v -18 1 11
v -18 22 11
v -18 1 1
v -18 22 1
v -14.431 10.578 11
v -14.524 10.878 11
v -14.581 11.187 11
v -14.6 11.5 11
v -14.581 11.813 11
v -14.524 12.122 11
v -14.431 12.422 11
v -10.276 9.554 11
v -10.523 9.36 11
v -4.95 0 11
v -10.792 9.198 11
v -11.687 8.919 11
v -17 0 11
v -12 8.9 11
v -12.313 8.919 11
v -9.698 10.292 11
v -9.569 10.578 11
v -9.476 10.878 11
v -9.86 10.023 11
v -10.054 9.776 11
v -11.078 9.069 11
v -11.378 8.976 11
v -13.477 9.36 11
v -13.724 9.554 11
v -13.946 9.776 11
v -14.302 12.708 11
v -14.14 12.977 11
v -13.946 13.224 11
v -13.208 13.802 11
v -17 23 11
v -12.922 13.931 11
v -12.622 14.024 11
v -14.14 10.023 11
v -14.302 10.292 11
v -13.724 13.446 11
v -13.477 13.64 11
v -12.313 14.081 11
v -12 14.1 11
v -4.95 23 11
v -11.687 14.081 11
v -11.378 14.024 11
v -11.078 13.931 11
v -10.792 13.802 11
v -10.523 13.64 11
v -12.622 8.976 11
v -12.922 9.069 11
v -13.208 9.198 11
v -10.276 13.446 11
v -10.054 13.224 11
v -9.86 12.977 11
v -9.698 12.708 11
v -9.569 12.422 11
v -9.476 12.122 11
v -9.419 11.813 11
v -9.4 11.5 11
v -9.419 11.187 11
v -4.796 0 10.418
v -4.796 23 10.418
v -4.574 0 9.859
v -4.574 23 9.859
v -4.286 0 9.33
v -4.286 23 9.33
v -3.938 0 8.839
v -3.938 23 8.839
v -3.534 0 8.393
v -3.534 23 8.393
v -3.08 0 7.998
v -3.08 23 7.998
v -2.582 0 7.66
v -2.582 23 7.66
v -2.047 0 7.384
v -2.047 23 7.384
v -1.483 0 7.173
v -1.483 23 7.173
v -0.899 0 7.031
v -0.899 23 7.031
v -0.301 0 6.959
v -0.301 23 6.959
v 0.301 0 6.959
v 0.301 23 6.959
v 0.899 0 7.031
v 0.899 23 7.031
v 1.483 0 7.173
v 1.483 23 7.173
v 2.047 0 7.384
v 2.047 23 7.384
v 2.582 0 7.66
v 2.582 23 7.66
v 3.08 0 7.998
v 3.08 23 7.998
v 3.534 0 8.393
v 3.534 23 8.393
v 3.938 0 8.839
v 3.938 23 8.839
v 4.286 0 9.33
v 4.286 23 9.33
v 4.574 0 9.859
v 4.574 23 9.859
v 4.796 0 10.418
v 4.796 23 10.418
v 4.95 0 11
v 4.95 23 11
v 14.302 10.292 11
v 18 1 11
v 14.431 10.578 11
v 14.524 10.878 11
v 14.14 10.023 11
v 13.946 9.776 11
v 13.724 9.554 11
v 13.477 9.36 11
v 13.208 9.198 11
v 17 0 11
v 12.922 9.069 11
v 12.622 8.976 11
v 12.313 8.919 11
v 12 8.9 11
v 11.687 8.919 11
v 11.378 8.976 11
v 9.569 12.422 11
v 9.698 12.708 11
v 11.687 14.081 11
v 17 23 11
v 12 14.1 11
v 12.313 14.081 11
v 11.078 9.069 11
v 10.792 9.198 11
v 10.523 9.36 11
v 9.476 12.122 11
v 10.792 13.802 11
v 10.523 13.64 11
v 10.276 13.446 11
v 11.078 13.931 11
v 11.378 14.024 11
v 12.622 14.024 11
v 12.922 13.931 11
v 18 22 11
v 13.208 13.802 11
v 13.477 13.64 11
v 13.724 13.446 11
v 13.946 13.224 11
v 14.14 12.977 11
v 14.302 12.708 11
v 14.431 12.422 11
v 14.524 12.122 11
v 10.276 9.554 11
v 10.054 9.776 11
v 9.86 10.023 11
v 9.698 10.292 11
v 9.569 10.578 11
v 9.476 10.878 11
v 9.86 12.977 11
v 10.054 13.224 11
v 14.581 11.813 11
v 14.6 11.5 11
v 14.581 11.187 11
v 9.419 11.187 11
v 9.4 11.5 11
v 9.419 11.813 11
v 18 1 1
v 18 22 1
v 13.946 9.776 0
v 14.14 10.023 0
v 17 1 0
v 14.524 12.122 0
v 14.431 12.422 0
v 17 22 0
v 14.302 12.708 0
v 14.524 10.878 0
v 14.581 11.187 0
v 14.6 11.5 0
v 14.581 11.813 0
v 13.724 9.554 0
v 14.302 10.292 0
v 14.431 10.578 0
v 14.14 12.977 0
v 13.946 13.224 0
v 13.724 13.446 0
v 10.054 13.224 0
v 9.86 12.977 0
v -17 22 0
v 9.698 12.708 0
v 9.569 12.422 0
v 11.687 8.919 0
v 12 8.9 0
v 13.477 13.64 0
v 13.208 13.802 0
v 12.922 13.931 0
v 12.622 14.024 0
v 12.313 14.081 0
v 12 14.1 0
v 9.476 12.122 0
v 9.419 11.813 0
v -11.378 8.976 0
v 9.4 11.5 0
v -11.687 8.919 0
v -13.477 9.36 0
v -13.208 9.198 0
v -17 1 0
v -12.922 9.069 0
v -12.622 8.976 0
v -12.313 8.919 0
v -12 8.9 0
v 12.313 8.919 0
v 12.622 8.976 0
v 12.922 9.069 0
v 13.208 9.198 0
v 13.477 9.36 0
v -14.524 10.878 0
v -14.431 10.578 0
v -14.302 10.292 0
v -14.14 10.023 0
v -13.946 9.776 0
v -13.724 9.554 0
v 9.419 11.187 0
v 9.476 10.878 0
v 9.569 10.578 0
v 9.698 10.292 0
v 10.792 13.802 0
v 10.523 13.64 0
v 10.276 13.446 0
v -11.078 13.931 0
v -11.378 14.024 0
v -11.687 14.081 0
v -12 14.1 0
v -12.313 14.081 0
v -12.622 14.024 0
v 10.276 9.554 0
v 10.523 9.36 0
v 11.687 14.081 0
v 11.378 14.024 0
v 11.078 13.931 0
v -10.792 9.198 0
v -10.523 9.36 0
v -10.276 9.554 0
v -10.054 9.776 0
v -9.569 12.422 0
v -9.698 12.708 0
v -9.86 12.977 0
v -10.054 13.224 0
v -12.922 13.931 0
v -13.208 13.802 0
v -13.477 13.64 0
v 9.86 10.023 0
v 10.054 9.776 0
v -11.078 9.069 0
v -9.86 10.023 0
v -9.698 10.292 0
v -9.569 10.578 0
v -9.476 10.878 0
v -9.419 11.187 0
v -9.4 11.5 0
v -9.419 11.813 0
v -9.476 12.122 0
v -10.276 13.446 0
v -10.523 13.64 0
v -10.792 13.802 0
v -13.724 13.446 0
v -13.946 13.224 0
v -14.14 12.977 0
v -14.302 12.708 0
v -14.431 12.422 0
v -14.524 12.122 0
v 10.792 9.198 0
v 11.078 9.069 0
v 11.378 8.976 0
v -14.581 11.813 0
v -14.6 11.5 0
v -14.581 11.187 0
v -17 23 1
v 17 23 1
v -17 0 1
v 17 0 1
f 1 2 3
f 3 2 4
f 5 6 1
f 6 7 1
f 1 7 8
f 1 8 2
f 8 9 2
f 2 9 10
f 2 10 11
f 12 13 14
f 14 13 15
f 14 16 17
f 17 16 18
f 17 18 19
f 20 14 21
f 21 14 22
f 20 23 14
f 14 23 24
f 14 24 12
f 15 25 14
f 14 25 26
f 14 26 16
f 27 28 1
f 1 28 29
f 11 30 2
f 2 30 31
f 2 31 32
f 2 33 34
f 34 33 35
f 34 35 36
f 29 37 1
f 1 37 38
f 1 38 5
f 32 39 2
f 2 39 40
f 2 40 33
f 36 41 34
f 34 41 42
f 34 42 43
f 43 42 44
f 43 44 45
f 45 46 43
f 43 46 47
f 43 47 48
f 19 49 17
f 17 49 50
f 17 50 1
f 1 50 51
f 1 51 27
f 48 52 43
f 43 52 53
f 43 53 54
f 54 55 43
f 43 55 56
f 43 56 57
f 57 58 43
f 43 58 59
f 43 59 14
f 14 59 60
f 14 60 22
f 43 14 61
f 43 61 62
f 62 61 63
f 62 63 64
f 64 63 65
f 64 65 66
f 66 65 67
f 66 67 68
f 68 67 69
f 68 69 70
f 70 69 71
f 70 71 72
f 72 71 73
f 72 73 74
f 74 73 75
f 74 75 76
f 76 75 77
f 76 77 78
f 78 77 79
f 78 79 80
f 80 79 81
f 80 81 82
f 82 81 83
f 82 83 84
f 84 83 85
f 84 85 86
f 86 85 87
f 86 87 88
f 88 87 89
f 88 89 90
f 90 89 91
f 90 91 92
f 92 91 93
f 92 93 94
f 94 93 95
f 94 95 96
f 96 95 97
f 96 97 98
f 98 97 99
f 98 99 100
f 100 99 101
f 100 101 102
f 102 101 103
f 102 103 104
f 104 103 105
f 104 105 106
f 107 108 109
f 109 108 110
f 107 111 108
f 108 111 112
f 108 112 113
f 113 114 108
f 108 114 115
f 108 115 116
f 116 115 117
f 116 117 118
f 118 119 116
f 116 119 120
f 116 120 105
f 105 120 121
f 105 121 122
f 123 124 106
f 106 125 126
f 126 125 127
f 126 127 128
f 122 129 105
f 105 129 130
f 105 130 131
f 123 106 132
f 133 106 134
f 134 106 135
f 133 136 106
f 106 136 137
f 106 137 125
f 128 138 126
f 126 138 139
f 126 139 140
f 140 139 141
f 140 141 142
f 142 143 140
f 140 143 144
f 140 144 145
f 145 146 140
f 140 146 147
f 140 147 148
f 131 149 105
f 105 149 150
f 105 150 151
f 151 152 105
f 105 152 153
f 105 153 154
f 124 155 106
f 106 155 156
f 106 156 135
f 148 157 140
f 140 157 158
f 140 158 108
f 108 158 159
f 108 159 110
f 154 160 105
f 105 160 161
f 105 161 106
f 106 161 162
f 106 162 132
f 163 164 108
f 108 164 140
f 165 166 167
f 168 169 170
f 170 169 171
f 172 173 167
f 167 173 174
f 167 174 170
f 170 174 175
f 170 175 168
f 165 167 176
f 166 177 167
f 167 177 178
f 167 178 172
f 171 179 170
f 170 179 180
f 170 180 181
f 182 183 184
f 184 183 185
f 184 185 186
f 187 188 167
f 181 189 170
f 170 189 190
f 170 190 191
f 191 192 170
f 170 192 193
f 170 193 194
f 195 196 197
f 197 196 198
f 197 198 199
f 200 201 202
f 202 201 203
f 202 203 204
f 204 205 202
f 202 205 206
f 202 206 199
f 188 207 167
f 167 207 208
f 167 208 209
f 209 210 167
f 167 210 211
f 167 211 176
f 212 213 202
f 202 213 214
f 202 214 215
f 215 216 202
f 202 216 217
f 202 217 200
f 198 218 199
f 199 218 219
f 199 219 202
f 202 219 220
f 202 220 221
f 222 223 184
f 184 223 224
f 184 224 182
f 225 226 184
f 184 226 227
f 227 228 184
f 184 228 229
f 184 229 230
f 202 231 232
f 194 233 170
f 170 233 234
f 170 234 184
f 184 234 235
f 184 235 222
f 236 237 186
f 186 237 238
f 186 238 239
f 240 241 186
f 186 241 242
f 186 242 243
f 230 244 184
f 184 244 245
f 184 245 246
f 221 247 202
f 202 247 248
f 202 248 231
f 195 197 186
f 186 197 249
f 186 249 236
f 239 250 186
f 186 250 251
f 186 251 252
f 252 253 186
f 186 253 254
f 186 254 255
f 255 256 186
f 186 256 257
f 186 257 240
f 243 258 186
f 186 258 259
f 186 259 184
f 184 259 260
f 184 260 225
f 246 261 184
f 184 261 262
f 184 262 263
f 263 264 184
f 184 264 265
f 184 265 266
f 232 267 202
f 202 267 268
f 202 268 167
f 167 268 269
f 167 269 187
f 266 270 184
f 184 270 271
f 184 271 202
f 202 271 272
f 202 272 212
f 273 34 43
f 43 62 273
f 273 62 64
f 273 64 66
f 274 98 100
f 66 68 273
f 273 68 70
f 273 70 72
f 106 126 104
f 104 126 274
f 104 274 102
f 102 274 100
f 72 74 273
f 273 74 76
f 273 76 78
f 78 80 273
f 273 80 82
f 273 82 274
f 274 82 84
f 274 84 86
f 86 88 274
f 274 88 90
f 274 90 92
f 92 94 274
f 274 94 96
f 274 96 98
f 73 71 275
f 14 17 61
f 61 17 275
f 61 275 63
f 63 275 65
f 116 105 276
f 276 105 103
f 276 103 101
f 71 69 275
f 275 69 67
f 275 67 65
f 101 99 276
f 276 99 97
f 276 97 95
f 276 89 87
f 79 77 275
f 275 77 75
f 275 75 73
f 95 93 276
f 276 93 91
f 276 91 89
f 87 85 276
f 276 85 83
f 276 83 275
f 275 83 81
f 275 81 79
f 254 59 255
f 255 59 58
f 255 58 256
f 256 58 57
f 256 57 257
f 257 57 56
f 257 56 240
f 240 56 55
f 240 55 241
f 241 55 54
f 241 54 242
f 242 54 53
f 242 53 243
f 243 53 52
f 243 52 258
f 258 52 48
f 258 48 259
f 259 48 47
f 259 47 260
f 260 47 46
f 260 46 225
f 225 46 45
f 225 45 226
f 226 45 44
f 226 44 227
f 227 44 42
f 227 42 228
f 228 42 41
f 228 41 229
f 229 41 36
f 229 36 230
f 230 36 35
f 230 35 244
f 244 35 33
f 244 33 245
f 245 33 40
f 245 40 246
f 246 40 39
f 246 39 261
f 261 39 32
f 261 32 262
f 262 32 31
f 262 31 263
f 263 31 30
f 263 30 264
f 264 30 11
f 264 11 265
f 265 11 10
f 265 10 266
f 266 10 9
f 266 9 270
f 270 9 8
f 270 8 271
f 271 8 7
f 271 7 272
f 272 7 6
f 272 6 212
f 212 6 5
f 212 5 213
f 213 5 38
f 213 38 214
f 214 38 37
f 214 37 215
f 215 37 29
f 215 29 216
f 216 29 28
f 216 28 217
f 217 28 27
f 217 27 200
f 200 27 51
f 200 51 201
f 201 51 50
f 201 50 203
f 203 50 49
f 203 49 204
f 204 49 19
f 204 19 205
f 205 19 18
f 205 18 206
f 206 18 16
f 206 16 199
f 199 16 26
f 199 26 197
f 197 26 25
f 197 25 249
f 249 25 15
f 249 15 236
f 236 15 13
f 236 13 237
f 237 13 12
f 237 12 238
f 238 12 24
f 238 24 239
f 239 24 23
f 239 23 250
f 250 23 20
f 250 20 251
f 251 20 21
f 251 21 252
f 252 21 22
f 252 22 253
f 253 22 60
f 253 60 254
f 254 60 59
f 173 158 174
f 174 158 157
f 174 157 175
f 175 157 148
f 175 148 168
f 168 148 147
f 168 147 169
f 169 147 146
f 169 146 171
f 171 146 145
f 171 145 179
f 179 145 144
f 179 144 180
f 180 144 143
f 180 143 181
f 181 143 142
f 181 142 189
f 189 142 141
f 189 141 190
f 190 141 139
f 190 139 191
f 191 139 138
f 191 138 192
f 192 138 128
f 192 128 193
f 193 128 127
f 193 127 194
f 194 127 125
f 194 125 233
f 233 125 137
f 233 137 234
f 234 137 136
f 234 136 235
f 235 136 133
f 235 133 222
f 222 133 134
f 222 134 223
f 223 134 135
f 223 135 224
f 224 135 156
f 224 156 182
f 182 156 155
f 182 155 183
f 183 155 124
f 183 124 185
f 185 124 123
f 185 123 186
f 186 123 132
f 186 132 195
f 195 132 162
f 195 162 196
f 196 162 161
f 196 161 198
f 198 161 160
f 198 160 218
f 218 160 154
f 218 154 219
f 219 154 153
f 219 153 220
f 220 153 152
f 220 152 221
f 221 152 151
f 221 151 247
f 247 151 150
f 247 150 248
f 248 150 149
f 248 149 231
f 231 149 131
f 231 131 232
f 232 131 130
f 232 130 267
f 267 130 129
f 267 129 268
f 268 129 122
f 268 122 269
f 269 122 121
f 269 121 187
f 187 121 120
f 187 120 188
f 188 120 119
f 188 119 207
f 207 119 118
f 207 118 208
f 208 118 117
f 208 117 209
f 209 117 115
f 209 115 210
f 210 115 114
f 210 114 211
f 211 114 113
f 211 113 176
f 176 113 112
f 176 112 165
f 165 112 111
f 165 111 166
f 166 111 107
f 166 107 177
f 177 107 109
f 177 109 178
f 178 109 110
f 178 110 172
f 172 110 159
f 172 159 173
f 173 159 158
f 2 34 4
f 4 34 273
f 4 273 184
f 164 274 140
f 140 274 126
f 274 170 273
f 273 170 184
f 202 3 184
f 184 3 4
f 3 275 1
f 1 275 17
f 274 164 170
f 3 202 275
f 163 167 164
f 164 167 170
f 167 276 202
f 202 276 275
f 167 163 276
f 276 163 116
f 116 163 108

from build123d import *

# Parameters (mm, degrees)
BOSS_EXTRUDE1_DEPTH = 23
CUT_EXTRUDE1_REACH  = 33.209
SKETCH2_R           = 2.6
CHAMFER1_SIZE       = 1


with BuildPart() as part:
    # Sketch1 → Boss-Extrude1 (new body)
    with BuildSketch(Plane(origin=(0, 0, 0), x_dir=(1, 0, 0), z_dir=(0, 1, 0))):
        with BuildLine():
            Line((-18, 0), (18, 0))
            Line((18, 0), (18, -11))
            Line((18, -11), (4.92449236, -11))
            ThreePointArc((4.92449236, -11), (0, -6.975), (-4.92449236, -11))
            Line((-4.92449236, -11), (-18, -11))
            Line((-18, -11), (-18, 0))
        make_face()
    extrude(amount=BOSS_EXTRUDE1_DEPTH)

    # Sketch2 → Cut-Extrude1 (cut, up to next)
    with BuildSketch(Plane.XY.offset(11), mode=Mode.PRIVATE) as cut_extrude1_sk1:
        with Locations((-12, 11.5)):
            Circle(SKETCH2_R)
    cut_extrude1_tool1 = extrude(cut_extrude1_sk1.sketch, amount=-CUT_EXTRUDE1_REACH, mode=Mode.PRIVATE) & part.part
    # Sketch2 → Cut-Extrude1 (cut, up to next)
    with BuildSketch(Plane.XY.offset(11), mode=Mode.PRIVATE) as cut_extrude1_sk2:
        with Locations((12, 11.5)):
            Circle(SKETCH2_R)
    cut_extrude1_tool2 = extrude(cut_extrude1_sk2.sketch, amount=-CUT_EXTRUDE1_REACH, mode=Mode.PRIVATE) & part.part
    add(cut_extrude1_tool1.solids().sort_by_distance((-12, 11.5, 11))[0], mode=Mode.SUBTRACT)
    add(cut_extrude1_tool2.solids().sort_by_distance((12, 11.5, 11))[0], mode=Mode.SUBTRACT)

    # Chamfer1
    chamfer1_edges = [part.edges().sort_by_distance(p)[0] for p in [
        (-18, 11.5, 0),
        (18, 11.5, 0),
        (18, 23, 5.5),
        (0, 23, 0),
        (-18, 23, 5.5),
        (0, 0, 0),
        (18, 0, 5.5),
        (-18, 0, 5.5),
    ]]
    chamfer(chamfer1_edges, length=CHAMFER1_SIZE)


solid = part.part
